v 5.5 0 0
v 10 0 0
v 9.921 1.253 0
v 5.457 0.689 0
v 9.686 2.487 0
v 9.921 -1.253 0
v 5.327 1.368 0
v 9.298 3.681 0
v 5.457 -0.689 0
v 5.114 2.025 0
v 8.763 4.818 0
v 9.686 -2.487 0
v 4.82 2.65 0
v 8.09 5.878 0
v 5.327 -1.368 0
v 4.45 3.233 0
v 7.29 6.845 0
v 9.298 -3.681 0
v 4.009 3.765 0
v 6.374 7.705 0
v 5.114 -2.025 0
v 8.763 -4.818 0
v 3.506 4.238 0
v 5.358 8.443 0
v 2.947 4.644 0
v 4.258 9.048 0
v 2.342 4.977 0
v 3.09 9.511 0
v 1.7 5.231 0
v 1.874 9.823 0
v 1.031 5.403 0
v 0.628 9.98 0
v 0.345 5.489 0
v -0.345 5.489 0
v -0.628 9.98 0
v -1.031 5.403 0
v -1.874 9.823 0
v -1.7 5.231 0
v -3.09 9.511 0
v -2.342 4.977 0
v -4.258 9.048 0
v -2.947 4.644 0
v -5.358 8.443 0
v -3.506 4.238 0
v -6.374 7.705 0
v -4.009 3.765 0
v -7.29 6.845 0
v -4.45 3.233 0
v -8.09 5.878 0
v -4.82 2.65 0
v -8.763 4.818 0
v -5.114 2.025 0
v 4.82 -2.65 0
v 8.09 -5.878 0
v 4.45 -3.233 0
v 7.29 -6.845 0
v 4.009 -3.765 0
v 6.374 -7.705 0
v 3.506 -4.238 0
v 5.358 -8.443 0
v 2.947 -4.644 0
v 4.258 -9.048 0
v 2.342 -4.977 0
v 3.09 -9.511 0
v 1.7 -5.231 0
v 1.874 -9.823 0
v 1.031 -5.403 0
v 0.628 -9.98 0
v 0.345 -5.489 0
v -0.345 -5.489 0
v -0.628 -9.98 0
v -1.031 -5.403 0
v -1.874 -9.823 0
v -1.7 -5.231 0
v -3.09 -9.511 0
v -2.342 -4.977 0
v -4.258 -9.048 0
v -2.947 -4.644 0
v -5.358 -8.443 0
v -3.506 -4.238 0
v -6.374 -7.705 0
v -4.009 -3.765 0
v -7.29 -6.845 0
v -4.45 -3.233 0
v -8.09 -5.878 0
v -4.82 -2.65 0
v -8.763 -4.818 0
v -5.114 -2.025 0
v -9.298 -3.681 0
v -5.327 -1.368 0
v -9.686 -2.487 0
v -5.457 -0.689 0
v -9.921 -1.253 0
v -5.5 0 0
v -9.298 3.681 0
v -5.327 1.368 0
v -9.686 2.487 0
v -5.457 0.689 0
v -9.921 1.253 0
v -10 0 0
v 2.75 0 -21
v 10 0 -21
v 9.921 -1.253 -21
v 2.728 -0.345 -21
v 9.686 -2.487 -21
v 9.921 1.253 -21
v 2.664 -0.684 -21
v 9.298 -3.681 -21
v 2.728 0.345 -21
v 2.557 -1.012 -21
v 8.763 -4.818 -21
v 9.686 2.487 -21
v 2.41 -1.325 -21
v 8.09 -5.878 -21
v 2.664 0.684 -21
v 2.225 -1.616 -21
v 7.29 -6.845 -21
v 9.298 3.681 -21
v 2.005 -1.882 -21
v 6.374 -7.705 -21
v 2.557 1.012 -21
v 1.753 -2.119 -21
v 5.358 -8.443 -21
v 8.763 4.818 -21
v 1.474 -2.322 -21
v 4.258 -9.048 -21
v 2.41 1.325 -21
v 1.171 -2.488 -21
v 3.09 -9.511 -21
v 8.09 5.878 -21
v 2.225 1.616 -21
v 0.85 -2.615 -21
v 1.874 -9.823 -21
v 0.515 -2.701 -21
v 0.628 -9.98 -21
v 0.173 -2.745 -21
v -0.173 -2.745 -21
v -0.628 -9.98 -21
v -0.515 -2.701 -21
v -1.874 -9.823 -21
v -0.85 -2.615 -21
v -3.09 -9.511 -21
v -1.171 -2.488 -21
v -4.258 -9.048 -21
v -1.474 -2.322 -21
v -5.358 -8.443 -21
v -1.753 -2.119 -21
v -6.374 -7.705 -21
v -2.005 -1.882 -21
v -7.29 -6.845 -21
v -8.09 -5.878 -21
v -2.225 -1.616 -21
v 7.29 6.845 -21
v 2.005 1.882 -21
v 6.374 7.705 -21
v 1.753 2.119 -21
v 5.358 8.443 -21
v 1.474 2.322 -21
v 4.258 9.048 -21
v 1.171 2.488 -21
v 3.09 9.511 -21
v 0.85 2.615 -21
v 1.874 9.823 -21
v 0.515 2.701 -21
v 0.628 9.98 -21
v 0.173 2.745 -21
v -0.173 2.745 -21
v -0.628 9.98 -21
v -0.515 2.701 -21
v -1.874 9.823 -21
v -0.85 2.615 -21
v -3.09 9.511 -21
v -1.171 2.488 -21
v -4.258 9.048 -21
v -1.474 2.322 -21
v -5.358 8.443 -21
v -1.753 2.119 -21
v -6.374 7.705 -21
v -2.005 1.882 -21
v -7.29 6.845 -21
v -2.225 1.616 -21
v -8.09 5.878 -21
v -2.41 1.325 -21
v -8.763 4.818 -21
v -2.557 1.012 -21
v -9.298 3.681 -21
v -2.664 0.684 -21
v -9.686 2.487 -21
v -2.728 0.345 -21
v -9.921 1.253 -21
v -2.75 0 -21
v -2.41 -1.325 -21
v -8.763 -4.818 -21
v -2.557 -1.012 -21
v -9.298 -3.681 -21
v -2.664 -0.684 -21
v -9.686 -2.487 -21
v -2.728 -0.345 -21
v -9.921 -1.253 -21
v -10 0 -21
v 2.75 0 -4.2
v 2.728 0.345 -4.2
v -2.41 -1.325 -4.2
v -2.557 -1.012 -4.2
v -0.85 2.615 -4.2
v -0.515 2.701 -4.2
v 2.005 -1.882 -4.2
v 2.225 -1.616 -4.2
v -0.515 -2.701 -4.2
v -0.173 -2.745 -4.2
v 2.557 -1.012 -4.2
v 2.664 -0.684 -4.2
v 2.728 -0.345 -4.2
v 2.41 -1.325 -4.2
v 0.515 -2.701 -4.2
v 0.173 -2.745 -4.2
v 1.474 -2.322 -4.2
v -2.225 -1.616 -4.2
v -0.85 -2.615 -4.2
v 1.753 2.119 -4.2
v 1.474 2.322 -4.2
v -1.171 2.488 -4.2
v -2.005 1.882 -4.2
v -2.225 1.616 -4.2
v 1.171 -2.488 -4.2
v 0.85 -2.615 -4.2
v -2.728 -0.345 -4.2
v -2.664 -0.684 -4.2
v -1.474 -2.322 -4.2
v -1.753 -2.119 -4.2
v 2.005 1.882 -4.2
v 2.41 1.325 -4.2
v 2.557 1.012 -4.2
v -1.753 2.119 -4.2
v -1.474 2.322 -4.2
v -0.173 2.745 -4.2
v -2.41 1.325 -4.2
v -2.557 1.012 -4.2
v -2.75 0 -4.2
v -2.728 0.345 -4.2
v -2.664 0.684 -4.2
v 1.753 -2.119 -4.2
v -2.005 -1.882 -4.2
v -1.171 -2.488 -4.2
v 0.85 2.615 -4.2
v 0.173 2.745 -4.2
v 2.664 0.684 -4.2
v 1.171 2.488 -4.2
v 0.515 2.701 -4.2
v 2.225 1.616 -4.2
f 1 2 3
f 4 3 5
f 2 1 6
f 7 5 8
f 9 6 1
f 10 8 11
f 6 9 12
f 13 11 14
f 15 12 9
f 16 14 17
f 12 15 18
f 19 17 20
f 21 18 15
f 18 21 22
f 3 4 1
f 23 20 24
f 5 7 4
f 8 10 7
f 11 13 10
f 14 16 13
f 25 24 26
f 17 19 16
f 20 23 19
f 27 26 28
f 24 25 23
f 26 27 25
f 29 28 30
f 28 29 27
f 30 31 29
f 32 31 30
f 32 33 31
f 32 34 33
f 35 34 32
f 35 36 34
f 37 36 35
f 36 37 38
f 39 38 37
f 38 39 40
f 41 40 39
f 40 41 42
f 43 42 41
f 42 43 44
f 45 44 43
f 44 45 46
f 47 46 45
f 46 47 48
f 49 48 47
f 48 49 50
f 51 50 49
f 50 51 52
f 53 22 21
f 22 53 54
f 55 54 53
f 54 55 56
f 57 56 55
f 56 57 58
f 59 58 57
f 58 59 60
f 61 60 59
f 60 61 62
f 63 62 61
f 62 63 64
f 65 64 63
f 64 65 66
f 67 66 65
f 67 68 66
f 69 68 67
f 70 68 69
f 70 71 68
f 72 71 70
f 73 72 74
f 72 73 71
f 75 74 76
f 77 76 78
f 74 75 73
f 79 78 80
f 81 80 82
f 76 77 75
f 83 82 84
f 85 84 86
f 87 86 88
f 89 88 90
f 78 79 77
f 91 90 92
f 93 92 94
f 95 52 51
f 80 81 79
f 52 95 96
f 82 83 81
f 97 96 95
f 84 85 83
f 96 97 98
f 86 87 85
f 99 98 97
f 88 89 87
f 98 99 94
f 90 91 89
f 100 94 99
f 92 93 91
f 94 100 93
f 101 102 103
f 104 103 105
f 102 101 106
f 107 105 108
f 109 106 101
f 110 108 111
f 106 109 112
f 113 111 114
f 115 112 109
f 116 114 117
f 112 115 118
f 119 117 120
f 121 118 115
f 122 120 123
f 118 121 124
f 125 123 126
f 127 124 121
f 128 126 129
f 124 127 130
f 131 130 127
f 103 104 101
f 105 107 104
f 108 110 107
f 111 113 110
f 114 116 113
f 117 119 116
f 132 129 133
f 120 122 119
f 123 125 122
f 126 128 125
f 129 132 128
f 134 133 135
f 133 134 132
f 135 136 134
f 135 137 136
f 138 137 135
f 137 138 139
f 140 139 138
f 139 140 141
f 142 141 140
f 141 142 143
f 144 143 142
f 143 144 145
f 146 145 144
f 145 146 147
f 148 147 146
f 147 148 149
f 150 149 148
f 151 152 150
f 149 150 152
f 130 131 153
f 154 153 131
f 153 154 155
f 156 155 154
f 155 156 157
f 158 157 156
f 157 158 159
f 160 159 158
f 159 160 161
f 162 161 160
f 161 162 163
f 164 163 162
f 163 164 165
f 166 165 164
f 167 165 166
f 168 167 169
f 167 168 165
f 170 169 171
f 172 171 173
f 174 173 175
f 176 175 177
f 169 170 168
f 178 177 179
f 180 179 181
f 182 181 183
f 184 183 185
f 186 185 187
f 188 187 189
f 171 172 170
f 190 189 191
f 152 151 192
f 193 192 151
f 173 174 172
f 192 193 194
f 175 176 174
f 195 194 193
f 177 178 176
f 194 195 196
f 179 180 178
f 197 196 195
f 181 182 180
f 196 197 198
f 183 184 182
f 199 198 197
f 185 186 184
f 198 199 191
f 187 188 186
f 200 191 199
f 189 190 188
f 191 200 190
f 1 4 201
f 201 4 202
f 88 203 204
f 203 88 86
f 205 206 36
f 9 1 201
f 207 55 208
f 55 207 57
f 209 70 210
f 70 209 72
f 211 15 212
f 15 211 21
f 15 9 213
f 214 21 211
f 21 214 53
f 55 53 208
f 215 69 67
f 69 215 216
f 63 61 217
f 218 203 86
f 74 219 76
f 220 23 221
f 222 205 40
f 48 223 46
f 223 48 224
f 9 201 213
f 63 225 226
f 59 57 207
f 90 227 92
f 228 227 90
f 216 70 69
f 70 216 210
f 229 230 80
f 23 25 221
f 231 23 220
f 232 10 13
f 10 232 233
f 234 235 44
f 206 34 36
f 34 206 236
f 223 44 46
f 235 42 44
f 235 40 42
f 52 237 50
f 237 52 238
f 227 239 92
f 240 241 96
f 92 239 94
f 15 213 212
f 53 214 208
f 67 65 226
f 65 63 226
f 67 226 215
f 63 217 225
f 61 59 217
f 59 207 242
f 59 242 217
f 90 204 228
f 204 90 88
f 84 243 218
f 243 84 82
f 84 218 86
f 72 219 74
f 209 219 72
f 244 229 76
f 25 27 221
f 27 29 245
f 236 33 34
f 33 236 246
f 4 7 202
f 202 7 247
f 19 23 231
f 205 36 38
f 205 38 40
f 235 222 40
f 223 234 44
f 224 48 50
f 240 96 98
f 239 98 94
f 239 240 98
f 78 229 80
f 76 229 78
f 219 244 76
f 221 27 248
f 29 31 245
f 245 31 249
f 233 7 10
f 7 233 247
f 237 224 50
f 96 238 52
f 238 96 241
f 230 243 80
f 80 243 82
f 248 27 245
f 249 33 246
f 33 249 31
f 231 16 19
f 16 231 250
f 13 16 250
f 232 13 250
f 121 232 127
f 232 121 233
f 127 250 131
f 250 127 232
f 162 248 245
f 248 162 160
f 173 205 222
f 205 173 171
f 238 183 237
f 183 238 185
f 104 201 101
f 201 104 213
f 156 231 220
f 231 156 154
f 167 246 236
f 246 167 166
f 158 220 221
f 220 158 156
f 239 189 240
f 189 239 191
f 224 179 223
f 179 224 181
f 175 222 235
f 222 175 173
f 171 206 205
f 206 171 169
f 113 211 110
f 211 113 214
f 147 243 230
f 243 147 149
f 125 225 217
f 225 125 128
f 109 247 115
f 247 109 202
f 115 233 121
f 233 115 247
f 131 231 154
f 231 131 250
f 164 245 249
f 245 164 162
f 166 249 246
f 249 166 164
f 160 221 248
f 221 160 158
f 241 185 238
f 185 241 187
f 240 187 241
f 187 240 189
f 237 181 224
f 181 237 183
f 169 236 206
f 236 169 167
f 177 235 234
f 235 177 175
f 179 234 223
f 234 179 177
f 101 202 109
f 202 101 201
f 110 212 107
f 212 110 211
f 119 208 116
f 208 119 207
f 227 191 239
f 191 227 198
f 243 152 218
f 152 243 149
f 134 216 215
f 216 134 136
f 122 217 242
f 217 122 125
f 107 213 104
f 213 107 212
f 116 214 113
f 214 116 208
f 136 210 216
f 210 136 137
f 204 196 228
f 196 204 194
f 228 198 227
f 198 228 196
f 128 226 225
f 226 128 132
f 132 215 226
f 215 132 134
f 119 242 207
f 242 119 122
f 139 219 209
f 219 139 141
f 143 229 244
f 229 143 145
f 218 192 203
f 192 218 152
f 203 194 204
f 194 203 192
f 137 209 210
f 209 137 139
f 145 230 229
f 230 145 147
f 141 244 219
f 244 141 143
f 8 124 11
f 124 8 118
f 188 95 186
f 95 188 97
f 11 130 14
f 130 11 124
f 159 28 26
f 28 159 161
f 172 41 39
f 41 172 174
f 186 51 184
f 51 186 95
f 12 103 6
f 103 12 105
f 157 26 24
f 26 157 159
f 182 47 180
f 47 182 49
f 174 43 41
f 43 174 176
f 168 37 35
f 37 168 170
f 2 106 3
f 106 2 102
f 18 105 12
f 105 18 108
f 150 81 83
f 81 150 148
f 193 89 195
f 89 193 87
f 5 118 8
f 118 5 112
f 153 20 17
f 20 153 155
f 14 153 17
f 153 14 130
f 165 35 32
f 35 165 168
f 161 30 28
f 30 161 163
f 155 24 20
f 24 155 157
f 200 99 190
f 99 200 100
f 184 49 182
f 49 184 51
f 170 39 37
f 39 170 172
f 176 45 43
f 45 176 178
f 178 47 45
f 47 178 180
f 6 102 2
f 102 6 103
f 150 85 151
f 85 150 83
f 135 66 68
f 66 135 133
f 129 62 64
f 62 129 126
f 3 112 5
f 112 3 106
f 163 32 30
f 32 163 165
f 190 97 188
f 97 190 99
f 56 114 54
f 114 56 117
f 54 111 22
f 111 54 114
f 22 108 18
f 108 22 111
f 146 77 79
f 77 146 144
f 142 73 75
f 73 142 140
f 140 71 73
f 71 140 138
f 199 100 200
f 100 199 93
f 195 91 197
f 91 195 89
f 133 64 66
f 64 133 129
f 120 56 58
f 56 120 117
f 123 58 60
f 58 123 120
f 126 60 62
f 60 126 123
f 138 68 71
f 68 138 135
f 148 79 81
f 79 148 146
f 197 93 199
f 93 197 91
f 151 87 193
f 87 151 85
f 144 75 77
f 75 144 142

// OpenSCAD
$fn = 50;


difference() {
	union() {
		translate(v = [0, 0, -21.0000000000]) {
			cylinder(h = 21, r = 10.0000000000);
		}
	}
	union() {
		translate(v = [0, 0, 0]) {
			rotate(a = [0, 0, 0]) {
				difference() {
					union() {
						#translate(v = [0, 0, -21.0000000000]) {
							cylinder(h = 21, r = 2.2500000000);
						}
						#translate(v = [0, 0, -4.2000000000]) {
							cylinder(h = 4.2000000000, r1 = 2.7500000000, r2 = 5.5000000000);
						}
						#translate(v = [0, 0, -21.0000000000]) {
							cylinder(h = 21, r = 2.7500000000);
						}
						#translate(v = [0, 0, -21.0000000000]) {
							cylinder(h = 21, r = 2.2500000000);
						}
					}
					union();
				}
			}
		}
	}
}
